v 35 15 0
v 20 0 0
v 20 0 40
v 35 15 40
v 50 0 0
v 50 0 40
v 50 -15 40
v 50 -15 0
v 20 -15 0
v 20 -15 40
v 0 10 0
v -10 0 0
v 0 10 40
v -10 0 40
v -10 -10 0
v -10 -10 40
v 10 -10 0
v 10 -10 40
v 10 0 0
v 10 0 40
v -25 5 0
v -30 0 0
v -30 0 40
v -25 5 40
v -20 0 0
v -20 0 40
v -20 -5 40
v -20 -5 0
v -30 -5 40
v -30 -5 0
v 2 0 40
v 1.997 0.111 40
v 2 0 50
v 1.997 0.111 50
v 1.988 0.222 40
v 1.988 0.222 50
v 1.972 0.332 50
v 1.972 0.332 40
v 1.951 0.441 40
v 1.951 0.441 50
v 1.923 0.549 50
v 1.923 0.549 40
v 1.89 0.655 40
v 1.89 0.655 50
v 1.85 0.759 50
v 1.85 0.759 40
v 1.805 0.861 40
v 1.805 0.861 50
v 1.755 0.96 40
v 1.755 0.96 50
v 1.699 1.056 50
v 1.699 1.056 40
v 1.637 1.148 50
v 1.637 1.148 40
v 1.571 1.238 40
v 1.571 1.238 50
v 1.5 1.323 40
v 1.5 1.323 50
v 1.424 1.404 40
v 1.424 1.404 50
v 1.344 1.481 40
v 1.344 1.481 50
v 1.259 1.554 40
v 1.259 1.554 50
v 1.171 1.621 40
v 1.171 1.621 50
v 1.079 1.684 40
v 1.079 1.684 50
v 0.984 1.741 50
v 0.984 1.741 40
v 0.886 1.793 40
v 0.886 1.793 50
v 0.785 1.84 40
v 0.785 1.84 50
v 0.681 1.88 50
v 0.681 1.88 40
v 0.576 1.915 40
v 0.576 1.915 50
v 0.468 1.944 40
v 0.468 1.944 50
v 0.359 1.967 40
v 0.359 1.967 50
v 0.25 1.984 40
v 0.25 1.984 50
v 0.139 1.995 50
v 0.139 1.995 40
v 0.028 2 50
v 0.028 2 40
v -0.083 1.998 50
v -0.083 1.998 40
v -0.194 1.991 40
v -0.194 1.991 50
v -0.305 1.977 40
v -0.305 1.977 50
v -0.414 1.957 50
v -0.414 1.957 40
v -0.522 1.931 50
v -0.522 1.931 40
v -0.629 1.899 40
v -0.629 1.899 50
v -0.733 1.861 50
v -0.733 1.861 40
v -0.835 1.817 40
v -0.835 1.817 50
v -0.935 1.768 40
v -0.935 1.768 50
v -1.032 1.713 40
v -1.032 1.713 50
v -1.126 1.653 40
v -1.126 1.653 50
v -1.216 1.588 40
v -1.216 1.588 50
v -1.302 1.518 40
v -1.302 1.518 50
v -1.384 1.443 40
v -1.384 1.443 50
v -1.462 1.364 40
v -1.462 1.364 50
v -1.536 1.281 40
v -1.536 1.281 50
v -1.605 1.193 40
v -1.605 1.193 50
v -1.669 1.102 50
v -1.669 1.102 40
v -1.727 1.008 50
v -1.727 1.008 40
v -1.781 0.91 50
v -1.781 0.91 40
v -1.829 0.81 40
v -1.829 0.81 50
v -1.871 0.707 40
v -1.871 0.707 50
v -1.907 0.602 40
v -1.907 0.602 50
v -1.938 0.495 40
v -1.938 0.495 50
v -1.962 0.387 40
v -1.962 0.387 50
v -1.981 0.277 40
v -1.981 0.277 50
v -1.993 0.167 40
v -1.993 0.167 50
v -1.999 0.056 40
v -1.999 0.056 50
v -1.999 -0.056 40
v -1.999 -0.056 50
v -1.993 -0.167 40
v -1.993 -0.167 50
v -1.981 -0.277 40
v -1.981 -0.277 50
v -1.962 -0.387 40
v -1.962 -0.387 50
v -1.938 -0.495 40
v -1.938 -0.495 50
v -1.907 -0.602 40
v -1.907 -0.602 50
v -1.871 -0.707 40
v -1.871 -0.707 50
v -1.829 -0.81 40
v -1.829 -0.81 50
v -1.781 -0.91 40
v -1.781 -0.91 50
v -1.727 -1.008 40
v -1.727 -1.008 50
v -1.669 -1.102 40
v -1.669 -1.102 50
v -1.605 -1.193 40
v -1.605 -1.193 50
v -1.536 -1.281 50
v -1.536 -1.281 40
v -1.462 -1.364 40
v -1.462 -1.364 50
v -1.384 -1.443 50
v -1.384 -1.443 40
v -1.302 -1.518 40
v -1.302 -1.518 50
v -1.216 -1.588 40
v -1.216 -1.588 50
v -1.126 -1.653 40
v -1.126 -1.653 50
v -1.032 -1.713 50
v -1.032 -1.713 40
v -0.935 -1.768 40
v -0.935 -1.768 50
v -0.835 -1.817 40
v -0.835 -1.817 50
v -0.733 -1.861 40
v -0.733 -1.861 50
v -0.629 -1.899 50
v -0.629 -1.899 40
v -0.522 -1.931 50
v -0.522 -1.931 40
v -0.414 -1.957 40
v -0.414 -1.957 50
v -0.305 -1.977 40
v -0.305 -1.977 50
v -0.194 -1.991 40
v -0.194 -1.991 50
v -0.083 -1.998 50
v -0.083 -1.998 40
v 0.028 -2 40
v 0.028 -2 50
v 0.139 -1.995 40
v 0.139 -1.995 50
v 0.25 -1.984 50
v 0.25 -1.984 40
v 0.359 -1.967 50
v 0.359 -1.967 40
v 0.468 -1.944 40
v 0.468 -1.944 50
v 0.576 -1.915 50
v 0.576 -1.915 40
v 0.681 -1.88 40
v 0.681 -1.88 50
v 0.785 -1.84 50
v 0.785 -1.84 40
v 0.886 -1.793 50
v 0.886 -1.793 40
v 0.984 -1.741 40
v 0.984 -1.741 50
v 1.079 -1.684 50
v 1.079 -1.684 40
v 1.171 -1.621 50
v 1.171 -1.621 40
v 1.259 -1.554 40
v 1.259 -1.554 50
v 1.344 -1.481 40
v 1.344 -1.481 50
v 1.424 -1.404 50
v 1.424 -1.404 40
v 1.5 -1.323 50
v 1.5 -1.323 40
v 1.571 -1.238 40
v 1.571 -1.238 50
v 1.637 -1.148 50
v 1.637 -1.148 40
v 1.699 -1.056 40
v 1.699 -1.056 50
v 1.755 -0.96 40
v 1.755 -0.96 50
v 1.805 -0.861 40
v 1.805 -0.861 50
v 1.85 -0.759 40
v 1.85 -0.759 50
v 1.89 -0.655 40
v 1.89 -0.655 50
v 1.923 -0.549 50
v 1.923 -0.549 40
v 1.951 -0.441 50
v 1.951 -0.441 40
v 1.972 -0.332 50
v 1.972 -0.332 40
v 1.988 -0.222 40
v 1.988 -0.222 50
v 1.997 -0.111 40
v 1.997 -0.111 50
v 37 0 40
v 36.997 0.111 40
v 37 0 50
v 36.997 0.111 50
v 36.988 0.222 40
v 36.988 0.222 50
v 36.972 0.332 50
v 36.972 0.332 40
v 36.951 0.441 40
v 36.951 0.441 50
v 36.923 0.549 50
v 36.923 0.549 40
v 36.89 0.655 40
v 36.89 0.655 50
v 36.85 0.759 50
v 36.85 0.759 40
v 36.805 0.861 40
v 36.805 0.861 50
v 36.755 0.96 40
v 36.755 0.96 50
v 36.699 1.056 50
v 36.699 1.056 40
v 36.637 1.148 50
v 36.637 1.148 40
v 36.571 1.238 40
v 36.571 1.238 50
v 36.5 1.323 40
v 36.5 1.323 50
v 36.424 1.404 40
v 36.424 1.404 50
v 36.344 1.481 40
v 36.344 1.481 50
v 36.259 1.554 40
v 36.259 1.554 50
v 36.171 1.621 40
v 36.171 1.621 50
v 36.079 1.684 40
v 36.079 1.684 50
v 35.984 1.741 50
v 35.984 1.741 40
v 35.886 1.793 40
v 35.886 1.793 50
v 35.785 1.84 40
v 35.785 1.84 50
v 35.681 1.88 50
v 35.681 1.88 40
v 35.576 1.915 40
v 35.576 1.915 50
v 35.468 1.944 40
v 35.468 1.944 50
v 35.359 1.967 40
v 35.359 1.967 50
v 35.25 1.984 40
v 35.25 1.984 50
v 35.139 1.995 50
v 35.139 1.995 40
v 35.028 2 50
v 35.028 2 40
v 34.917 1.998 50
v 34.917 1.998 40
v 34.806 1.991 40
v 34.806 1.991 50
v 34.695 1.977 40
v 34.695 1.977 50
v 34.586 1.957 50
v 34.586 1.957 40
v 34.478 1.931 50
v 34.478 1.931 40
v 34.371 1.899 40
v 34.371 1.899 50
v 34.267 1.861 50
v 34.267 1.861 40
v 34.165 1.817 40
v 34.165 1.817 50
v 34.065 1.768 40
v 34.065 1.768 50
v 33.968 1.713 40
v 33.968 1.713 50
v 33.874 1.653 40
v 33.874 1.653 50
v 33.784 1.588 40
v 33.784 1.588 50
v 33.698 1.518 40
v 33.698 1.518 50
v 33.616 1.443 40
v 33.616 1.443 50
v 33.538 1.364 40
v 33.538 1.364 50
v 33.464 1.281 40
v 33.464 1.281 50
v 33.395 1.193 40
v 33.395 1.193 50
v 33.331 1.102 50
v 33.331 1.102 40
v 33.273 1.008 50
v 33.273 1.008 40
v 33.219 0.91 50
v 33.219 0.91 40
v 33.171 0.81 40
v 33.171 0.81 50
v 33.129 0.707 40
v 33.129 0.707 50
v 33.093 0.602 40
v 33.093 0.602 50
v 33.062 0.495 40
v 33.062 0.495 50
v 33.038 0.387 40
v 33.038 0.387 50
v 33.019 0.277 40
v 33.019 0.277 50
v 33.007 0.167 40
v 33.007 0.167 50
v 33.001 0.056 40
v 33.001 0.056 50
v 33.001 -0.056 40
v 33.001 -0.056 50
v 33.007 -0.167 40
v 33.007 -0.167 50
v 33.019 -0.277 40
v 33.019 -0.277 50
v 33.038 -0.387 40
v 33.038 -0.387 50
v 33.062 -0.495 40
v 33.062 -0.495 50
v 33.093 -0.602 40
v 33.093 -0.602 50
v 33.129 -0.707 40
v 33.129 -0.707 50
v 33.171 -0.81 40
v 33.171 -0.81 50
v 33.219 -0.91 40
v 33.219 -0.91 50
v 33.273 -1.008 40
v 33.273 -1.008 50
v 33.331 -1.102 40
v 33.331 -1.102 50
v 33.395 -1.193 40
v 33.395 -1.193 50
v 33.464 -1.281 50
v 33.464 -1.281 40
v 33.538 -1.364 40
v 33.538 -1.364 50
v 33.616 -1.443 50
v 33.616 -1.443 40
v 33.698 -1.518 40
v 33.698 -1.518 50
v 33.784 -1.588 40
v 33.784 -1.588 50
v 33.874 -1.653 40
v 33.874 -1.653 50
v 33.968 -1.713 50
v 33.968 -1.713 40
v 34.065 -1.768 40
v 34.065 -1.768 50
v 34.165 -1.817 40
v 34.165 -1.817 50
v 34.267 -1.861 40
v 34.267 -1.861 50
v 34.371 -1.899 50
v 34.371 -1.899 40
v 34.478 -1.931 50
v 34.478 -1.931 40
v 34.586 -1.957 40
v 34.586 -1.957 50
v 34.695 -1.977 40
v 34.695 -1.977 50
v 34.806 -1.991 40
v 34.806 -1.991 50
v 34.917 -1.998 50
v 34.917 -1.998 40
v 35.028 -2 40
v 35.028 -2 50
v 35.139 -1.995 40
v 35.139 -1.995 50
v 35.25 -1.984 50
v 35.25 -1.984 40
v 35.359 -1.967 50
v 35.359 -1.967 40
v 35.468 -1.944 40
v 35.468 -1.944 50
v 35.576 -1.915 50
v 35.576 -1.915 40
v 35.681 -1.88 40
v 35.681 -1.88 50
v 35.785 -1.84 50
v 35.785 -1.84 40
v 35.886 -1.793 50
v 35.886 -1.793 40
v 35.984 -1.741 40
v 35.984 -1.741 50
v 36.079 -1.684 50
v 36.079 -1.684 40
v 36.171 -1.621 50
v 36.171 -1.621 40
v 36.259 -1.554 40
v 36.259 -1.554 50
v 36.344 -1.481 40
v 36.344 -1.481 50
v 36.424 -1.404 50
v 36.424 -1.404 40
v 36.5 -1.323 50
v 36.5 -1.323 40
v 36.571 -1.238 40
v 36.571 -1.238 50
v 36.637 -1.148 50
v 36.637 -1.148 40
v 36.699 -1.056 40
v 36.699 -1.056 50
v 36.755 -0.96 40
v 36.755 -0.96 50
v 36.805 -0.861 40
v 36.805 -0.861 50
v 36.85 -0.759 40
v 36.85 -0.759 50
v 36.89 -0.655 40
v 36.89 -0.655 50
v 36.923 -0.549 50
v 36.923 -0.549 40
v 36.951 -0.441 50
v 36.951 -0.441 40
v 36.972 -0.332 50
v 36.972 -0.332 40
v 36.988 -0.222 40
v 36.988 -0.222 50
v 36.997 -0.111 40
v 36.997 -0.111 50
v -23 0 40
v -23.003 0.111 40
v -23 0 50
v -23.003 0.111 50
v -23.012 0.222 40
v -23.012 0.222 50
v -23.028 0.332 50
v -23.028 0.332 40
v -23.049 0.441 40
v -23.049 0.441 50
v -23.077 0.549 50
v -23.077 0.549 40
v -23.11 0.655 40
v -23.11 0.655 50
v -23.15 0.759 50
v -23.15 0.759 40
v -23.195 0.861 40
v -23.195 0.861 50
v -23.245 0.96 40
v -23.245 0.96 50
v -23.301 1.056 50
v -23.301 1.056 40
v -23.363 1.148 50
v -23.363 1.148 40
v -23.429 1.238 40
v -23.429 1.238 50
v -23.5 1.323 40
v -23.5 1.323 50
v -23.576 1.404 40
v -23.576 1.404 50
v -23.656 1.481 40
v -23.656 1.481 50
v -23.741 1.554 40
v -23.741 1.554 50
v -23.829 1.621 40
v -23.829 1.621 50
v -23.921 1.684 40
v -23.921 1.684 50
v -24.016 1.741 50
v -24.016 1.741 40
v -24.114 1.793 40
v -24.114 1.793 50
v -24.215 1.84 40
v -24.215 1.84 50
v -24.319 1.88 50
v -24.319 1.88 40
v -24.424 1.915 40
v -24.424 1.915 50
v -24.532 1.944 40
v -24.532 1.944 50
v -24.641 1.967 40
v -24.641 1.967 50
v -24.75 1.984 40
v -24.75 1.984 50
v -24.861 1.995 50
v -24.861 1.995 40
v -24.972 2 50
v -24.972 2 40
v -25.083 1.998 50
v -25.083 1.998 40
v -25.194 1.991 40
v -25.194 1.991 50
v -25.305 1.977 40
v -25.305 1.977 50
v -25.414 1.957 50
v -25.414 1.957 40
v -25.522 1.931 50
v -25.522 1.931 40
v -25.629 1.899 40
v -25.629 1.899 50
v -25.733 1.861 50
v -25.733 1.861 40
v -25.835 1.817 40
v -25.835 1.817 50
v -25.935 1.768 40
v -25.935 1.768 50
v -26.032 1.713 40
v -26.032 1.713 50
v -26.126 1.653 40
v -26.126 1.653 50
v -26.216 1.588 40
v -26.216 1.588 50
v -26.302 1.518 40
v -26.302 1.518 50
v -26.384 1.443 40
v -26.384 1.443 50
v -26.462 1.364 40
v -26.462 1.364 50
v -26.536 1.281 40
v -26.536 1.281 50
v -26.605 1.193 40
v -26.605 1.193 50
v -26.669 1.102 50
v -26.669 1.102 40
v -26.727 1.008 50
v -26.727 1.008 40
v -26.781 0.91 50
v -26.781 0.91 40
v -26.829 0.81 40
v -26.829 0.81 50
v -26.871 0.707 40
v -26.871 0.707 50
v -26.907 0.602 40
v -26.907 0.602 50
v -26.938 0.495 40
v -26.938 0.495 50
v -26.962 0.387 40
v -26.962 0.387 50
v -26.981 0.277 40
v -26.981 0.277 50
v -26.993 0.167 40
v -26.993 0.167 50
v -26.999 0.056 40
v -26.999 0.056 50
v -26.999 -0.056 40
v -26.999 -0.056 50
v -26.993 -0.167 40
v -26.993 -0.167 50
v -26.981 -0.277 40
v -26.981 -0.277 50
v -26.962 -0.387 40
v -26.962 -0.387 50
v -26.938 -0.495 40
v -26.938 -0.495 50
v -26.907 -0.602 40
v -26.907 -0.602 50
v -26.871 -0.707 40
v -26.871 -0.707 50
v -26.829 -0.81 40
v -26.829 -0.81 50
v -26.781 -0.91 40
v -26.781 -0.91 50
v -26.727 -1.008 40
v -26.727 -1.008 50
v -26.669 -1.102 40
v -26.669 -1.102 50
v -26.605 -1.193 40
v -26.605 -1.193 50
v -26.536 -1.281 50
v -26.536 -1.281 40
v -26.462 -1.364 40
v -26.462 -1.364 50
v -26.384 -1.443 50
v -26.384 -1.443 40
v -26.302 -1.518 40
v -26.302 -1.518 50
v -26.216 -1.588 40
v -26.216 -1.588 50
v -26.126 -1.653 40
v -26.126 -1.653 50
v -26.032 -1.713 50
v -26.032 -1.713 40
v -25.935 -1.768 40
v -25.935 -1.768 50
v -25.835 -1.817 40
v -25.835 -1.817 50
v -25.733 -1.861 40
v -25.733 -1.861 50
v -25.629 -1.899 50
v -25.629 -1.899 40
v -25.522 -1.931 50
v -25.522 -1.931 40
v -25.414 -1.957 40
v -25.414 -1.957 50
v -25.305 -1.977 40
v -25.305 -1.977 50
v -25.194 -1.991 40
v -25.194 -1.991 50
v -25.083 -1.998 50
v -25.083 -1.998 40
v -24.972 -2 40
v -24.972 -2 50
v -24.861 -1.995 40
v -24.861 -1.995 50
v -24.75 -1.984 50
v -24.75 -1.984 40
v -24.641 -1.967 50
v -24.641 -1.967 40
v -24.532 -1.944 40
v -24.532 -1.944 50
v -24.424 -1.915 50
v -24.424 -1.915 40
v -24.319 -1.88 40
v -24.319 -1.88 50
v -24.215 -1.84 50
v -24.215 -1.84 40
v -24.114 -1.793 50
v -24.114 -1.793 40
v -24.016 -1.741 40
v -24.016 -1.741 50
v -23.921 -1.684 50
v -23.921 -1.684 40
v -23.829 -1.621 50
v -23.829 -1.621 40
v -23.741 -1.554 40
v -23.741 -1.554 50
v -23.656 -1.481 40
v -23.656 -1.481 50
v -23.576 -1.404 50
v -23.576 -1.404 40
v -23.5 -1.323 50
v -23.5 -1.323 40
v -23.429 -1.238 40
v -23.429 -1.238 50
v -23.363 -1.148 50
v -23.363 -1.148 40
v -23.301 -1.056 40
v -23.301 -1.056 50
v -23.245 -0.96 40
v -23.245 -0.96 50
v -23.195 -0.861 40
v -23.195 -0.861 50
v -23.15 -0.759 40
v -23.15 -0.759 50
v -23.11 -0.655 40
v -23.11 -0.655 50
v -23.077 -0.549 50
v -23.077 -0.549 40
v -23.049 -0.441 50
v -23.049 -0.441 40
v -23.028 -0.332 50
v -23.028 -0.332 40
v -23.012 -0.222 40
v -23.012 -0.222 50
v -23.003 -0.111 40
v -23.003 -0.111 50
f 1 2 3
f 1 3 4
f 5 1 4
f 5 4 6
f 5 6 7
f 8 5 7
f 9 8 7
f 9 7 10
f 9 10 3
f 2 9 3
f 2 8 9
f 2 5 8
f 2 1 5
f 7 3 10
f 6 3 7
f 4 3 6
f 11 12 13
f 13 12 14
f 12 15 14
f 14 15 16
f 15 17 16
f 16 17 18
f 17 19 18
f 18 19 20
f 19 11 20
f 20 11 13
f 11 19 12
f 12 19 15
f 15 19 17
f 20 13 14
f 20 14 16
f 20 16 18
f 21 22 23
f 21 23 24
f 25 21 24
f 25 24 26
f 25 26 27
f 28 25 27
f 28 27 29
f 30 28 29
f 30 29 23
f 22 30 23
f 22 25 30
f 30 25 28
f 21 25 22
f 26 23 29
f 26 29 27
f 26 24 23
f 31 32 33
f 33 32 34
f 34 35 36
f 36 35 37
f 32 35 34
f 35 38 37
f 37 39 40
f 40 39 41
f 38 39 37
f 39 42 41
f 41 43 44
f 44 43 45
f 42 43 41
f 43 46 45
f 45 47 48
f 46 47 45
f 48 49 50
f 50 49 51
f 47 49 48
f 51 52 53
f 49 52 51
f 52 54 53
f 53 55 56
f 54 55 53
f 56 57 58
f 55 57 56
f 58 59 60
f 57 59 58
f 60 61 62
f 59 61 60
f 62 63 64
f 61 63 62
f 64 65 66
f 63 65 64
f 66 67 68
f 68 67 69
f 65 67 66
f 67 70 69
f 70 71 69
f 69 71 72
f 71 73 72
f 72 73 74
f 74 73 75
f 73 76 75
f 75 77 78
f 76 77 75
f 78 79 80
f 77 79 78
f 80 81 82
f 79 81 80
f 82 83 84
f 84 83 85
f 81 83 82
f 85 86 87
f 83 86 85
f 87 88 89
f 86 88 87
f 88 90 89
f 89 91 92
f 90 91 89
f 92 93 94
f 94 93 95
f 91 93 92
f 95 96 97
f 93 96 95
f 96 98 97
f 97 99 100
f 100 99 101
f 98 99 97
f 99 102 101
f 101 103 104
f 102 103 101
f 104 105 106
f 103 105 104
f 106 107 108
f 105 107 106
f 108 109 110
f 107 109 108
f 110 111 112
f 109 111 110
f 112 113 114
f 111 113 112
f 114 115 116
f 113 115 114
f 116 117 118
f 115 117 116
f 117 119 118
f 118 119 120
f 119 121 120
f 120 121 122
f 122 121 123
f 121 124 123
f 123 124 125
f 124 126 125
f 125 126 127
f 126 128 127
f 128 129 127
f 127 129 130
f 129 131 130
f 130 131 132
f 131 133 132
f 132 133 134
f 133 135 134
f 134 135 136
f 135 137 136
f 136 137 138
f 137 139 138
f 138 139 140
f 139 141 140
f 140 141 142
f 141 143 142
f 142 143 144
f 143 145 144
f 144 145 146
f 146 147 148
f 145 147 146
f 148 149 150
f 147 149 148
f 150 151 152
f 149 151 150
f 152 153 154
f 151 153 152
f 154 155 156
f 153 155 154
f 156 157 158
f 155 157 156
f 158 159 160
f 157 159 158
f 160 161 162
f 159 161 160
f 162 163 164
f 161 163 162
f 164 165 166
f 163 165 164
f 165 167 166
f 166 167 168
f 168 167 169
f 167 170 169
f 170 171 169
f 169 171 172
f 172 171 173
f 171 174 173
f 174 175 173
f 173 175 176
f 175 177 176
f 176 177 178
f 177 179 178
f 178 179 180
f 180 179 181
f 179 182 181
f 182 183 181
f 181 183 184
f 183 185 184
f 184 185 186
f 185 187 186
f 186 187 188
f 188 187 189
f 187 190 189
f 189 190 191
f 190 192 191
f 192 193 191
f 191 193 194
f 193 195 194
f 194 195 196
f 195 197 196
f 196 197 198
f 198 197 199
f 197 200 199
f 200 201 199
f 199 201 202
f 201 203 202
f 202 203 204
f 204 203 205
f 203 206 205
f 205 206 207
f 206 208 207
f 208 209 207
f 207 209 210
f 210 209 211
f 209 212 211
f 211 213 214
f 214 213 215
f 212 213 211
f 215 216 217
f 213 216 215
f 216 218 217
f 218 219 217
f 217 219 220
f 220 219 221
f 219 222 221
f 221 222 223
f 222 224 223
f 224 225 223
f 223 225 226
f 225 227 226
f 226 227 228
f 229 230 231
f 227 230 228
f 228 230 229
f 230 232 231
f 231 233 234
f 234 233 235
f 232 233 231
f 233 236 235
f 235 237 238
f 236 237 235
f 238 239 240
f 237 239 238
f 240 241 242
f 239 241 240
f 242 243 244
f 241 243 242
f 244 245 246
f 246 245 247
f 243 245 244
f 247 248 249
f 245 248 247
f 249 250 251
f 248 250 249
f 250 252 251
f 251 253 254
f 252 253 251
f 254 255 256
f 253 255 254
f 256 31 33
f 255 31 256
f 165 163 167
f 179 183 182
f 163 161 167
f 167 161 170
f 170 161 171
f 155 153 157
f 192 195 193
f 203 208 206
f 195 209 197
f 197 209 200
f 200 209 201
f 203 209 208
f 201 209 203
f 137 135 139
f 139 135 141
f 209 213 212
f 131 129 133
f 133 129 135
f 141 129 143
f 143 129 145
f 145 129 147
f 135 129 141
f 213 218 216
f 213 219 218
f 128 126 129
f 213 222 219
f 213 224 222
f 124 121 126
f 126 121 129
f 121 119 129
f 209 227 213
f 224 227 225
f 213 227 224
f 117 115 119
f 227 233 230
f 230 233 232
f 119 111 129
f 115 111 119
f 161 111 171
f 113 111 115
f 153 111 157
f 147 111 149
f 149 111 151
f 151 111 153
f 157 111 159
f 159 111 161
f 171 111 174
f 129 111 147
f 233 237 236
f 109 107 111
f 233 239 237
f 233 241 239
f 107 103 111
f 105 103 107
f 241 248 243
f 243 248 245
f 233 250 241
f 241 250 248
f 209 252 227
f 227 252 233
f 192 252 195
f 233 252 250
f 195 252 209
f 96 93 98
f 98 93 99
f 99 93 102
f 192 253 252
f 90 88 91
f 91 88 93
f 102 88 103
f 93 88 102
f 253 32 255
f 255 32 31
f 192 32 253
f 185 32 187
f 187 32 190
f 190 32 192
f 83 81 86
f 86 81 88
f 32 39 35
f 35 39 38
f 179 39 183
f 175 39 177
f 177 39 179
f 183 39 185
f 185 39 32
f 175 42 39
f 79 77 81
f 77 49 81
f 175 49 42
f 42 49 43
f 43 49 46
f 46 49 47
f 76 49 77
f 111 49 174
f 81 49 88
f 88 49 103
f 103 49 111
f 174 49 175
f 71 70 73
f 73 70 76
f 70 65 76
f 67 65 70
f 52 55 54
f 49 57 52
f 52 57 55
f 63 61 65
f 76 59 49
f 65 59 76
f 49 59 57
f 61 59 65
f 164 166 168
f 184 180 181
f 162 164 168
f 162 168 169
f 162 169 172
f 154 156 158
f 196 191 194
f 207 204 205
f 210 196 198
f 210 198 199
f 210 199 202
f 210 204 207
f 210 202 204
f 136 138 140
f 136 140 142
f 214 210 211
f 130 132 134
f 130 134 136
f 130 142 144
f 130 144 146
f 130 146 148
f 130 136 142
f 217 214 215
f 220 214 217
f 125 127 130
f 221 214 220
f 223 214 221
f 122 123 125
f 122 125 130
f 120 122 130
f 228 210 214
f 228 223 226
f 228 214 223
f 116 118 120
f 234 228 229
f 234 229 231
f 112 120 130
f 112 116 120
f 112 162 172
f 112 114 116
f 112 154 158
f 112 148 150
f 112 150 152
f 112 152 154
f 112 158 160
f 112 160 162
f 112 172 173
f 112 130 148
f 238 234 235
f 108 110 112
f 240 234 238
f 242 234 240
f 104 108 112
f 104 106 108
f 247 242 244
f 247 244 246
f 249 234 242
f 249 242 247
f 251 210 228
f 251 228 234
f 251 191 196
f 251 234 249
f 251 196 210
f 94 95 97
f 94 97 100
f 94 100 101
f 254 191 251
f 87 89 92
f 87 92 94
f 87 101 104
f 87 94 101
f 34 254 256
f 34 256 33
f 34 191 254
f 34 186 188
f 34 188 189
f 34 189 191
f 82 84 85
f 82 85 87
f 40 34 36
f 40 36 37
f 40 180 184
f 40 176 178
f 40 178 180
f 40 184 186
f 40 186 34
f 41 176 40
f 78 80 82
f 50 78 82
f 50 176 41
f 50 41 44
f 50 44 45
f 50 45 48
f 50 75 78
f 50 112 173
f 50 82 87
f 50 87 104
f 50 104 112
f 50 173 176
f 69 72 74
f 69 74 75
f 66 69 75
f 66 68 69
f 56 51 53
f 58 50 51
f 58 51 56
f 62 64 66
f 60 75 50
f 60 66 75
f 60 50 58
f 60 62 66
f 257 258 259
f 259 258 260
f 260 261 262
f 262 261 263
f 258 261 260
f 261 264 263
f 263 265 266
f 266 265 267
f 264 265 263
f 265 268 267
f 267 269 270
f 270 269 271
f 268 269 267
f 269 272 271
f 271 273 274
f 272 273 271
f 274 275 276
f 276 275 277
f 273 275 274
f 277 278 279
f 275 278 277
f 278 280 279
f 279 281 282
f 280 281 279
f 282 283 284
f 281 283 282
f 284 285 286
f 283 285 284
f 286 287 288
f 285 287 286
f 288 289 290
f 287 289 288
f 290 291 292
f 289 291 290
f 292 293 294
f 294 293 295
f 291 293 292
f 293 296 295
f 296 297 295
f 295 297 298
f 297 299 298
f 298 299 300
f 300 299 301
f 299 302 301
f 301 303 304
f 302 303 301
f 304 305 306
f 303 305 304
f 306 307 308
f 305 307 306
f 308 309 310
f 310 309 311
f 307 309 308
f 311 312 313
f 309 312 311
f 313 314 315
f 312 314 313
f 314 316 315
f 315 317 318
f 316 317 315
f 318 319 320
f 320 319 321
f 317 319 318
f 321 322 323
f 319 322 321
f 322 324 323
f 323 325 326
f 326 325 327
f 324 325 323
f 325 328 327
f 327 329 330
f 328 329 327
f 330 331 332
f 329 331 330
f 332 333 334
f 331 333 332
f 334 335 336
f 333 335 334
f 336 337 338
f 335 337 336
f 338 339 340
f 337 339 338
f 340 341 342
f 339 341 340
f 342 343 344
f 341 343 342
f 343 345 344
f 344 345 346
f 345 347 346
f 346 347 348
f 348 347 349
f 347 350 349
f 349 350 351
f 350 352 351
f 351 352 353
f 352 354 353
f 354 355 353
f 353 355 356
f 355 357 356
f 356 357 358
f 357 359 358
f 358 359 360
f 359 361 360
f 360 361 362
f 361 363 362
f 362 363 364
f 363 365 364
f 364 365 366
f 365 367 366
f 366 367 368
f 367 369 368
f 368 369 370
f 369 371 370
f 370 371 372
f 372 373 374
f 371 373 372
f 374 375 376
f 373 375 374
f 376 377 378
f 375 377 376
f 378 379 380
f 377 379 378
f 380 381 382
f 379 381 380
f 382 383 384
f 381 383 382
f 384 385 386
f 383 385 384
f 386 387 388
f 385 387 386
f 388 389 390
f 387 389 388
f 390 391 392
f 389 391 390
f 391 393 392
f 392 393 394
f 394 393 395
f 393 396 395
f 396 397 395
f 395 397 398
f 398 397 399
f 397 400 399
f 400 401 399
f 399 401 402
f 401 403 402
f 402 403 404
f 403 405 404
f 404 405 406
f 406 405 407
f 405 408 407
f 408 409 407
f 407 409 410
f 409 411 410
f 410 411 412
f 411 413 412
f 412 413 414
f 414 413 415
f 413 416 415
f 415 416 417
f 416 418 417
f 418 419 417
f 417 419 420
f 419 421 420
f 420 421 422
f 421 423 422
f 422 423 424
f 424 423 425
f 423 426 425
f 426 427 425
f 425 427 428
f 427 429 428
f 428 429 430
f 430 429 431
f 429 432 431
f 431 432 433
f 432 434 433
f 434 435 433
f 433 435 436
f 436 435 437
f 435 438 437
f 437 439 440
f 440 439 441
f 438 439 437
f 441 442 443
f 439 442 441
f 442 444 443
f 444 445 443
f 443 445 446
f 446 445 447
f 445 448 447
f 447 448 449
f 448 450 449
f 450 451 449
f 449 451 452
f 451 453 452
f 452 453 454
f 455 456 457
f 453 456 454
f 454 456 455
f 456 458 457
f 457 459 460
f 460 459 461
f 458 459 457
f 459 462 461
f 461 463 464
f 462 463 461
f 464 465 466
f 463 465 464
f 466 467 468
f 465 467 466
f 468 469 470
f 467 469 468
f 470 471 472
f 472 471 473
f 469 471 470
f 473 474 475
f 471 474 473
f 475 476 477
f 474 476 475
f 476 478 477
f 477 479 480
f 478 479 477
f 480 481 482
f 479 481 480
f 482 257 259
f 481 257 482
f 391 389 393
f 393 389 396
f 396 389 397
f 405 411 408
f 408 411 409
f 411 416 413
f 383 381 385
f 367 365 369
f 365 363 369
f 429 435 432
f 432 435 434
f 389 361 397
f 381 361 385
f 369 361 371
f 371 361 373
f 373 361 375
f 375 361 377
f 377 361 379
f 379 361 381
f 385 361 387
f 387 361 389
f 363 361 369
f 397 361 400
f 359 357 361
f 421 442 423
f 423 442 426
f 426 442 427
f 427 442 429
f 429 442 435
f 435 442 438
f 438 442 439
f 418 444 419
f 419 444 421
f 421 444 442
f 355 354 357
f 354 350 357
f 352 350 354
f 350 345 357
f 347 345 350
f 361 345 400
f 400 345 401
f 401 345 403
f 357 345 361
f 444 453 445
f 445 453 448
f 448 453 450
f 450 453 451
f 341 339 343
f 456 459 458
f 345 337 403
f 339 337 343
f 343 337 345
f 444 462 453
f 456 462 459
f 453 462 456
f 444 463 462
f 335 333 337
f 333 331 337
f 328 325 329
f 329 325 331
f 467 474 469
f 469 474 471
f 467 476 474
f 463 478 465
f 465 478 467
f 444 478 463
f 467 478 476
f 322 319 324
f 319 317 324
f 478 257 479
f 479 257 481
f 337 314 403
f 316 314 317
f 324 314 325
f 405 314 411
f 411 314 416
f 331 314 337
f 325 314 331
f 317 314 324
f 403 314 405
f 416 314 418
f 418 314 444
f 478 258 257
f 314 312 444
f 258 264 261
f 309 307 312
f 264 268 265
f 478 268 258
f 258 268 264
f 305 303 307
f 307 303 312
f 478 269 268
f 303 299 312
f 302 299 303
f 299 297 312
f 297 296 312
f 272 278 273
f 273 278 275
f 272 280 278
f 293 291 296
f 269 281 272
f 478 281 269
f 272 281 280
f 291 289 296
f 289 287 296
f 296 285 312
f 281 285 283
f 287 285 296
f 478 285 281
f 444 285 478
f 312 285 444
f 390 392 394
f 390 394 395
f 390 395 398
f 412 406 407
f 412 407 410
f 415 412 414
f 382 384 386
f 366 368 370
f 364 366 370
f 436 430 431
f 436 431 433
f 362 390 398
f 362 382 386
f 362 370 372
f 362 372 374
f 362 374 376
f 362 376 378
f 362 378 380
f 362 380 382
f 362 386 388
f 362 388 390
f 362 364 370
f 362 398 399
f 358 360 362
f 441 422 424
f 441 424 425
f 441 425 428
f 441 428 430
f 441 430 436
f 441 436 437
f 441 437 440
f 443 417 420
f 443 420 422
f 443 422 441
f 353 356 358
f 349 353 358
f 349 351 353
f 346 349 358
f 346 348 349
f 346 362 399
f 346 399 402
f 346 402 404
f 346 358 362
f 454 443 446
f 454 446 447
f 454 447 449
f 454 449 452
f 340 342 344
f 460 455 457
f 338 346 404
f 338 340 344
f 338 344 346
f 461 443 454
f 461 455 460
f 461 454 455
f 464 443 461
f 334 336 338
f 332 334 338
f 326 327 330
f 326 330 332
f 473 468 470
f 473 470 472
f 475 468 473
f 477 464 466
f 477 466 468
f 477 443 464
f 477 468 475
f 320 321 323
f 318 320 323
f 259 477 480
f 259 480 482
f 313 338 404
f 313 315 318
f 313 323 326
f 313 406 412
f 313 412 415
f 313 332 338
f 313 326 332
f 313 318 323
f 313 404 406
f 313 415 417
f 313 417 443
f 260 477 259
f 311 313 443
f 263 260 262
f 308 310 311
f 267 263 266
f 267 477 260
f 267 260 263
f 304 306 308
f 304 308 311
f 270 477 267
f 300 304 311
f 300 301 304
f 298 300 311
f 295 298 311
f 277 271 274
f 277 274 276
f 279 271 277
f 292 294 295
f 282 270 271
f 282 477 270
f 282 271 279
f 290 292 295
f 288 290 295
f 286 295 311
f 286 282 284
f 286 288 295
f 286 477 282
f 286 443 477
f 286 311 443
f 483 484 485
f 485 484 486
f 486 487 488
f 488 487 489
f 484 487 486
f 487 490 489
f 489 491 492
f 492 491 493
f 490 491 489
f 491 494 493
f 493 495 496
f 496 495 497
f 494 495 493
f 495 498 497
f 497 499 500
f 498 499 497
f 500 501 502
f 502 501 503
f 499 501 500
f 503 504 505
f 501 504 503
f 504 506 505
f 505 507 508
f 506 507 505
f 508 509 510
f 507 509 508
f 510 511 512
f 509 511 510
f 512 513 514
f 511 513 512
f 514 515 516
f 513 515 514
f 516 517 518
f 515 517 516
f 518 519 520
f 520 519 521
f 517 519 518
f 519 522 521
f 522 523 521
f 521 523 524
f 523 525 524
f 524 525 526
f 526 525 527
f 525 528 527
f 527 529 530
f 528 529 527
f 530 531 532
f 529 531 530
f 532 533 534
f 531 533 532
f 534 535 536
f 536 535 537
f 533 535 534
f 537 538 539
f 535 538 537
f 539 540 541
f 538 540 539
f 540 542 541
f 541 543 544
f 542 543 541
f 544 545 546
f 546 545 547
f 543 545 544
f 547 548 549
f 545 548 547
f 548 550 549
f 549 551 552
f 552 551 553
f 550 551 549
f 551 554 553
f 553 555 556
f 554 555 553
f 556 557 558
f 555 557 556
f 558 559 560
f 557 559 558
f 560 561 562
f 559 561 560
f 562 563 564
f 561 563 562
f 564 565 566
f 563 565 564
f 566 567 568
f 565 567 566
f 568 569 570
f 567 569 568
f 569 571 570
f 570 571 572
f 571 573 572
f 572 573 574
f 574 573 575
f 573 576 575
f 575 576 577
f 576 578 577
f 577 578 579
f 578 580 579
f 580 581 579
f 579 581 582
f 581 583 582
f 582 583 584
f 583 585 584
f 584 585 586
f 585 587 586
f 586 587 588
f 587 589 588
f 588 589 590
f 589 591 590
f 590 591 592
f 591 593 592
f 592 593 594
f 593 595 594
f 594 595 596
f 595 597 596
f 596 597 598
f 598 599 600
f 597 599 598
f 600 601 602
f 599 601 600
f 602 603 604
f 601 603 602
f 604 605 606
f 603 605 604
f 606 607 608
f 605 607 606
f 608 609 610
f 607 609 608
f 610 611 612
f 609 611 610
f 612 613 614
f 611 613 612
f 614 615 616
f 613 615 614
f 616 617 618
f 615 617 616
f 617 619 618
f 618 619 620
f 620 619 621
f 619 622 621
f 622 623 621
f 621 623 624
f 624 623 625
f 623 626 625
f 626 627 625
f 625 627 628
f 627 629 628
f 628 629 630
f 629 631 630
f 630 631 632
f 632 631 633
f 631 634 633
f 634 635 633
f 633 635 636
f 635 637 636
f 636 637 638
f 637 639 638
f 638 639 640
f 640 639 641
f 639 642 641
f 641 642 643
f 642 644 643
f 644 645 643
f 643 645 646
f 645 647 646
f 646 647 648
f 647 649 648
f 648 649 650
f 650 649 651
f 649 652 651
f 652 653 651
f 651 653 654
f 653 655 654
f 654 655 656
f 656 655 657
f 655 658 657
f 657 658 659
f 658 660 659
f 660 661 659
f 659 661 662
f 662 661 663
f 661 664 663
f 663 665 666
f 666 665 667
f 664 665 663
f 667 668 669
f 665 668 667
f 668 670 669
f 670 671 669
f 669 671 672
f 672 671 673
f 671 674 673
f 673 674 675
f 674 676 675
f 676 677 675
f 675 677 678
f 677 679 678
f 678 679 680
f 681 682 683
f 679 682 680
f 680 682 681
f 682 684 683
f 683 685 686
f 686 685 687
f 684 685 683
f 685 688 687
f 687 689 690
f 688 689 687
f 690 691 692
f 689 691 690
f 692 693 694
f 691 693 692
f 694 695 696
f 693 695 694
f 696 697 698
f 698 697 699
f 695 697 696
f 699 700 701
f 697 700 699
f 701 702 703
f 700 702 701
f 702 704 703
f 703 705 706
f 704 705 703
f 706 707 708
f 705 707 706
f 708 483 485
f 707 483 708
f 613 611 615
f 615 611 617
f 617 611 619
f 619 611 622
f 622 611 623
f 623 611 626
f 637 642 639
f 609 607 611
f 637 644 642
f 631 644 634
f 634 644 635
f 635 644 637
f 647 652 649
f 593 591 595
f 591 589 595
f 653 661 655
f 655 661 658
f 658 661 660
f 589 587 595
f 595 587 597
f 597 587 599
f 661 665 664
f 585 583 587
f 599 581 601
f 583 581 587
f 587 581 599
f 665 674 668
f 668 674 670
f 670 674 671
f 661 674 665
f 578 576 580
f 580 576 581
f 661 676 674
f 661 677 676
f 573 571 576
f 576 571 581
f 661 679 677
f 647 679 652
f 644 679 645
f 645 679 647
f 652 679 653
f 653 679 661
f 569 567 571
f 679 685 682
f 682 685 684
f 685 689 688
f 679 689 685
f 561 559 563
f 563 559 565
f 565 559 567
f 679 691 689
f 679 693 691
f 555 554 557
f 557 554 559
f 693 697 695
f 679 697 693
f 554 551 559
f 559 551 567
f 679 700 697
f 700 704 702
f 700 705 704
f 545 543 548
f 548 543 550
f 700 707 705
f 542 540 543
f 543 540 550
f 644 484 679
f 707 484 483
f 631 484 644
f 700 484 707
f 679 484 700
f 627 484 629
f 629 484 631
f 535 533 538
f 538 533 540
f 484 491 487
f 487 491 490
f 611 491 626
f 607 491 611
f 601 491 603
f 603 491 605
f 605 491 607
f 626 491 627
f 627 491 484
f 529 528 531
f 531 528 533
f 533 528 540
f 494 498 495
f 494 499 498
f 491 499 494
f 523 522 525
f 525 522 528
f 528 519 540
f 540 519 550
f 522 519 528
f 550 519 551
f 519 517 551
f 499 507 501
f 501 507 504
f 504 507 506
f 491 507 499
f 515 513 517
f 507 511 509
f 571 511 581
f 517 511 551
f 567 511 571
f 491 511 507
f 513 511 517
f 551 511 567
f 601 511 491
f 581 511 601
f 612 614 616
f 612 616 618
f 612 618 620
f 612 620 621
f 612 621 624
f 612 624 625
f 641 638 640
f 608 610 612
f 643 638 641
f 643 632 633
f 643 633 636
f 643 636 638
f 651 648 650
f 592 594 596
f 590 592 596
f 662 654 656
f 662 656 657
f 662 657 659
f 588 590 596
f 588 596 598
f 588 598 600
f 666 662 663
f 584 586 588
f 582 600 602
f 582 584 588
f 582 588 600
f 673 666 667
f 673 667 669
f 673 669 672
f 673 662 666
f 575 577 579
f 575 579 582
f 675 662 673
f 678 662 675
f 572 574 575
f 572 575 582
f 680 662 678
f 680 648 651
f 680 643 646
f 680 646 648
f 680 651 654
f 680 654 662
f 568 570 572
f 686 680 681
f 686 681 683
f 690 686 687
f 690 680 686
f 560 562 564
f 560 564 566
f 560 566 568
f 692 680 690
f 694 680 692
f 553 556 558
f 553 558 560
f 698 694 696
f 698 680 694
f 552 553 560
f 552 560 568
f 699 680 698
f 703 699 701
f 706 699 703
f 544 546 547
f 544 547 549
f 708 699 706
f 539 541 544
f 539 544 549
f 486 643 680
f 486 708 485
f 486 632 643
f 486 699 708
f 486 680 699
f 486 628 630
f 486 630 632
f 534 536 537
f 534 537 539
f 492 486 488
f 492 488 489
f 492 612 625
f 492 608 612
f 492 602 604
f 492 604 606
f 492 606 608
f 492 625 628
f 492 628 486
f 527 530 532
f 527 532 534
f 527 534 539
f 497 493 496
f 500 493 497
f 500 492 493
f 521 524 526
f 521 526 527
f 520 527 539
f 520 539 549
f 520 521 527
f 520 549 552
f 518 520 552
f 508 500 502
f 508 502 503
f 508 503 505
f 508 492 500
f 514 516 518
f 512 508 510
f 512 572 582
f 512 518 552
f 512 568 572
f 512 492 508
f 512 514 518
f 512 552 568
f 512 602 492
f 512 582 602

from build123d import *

# Parameters (mm, degrees)
EXTRUDE_DEPTH     = 40
CYLINDER_R        = 2
CYLINDER_DEPTH    = 10
CYLINDER001_R     = 2
CYLINDER001_DEPTH = 10
CYLINDER002_R     = 2
CYLINDER002_DEPTH = 10


with BuildPart() as extrude_body:
    # Sketch → Extrude (new body)
    with BuildSketch(Plane.XY):
        Polygon((0, 10), (-10, 0), (-10, -10), (10, -10), (10, 0), align=None)
        Polygon((-30, 0), (-25, 5), (-20, 0), (-20, -5), (-30, -5), align=None)
        Polygon((20, 0), (35, 15), (50, 0), (50, -15), (20, -15), align=None)
    extrude(amount=EXTRUDE_DEPTH)


with BuildPart() as cylinder:
    # Cylinder → Cylinder (new body)
    with BuildSketch(Plane.XY.offset(40)):
        Circle(CYLINDER_R)
    extrude(amount=CYLINDER_DEPTH)


with BuildPart() as cylinder001:
    # Cylinder001 → Cylinder001 (new body)
    with BuildSketch(Plane(origin=(35, 0, 40), x_dir=(1, 0, 0), z_dir=(0, 0, 1))):
        Circle(CYLINDER001_R)
    extrude(amount=CYLINDER001_DEPTH)


with BuildPart() as cylinder002:
    # Cylinder002 → Cylinder002 (new body)
    with BuildSketch(Plane(origin=(-25, 0, 40), x_dir=(1, 0, 0), z_dir=(0, 0, 1))):
        Circle(CYLINDER002_R)
    extrude(amount=CYLINDER002_DEPTH)


solid = Compound([extrude_body.part, cylinder.part, cylinder001.part, cylinder002.part])
